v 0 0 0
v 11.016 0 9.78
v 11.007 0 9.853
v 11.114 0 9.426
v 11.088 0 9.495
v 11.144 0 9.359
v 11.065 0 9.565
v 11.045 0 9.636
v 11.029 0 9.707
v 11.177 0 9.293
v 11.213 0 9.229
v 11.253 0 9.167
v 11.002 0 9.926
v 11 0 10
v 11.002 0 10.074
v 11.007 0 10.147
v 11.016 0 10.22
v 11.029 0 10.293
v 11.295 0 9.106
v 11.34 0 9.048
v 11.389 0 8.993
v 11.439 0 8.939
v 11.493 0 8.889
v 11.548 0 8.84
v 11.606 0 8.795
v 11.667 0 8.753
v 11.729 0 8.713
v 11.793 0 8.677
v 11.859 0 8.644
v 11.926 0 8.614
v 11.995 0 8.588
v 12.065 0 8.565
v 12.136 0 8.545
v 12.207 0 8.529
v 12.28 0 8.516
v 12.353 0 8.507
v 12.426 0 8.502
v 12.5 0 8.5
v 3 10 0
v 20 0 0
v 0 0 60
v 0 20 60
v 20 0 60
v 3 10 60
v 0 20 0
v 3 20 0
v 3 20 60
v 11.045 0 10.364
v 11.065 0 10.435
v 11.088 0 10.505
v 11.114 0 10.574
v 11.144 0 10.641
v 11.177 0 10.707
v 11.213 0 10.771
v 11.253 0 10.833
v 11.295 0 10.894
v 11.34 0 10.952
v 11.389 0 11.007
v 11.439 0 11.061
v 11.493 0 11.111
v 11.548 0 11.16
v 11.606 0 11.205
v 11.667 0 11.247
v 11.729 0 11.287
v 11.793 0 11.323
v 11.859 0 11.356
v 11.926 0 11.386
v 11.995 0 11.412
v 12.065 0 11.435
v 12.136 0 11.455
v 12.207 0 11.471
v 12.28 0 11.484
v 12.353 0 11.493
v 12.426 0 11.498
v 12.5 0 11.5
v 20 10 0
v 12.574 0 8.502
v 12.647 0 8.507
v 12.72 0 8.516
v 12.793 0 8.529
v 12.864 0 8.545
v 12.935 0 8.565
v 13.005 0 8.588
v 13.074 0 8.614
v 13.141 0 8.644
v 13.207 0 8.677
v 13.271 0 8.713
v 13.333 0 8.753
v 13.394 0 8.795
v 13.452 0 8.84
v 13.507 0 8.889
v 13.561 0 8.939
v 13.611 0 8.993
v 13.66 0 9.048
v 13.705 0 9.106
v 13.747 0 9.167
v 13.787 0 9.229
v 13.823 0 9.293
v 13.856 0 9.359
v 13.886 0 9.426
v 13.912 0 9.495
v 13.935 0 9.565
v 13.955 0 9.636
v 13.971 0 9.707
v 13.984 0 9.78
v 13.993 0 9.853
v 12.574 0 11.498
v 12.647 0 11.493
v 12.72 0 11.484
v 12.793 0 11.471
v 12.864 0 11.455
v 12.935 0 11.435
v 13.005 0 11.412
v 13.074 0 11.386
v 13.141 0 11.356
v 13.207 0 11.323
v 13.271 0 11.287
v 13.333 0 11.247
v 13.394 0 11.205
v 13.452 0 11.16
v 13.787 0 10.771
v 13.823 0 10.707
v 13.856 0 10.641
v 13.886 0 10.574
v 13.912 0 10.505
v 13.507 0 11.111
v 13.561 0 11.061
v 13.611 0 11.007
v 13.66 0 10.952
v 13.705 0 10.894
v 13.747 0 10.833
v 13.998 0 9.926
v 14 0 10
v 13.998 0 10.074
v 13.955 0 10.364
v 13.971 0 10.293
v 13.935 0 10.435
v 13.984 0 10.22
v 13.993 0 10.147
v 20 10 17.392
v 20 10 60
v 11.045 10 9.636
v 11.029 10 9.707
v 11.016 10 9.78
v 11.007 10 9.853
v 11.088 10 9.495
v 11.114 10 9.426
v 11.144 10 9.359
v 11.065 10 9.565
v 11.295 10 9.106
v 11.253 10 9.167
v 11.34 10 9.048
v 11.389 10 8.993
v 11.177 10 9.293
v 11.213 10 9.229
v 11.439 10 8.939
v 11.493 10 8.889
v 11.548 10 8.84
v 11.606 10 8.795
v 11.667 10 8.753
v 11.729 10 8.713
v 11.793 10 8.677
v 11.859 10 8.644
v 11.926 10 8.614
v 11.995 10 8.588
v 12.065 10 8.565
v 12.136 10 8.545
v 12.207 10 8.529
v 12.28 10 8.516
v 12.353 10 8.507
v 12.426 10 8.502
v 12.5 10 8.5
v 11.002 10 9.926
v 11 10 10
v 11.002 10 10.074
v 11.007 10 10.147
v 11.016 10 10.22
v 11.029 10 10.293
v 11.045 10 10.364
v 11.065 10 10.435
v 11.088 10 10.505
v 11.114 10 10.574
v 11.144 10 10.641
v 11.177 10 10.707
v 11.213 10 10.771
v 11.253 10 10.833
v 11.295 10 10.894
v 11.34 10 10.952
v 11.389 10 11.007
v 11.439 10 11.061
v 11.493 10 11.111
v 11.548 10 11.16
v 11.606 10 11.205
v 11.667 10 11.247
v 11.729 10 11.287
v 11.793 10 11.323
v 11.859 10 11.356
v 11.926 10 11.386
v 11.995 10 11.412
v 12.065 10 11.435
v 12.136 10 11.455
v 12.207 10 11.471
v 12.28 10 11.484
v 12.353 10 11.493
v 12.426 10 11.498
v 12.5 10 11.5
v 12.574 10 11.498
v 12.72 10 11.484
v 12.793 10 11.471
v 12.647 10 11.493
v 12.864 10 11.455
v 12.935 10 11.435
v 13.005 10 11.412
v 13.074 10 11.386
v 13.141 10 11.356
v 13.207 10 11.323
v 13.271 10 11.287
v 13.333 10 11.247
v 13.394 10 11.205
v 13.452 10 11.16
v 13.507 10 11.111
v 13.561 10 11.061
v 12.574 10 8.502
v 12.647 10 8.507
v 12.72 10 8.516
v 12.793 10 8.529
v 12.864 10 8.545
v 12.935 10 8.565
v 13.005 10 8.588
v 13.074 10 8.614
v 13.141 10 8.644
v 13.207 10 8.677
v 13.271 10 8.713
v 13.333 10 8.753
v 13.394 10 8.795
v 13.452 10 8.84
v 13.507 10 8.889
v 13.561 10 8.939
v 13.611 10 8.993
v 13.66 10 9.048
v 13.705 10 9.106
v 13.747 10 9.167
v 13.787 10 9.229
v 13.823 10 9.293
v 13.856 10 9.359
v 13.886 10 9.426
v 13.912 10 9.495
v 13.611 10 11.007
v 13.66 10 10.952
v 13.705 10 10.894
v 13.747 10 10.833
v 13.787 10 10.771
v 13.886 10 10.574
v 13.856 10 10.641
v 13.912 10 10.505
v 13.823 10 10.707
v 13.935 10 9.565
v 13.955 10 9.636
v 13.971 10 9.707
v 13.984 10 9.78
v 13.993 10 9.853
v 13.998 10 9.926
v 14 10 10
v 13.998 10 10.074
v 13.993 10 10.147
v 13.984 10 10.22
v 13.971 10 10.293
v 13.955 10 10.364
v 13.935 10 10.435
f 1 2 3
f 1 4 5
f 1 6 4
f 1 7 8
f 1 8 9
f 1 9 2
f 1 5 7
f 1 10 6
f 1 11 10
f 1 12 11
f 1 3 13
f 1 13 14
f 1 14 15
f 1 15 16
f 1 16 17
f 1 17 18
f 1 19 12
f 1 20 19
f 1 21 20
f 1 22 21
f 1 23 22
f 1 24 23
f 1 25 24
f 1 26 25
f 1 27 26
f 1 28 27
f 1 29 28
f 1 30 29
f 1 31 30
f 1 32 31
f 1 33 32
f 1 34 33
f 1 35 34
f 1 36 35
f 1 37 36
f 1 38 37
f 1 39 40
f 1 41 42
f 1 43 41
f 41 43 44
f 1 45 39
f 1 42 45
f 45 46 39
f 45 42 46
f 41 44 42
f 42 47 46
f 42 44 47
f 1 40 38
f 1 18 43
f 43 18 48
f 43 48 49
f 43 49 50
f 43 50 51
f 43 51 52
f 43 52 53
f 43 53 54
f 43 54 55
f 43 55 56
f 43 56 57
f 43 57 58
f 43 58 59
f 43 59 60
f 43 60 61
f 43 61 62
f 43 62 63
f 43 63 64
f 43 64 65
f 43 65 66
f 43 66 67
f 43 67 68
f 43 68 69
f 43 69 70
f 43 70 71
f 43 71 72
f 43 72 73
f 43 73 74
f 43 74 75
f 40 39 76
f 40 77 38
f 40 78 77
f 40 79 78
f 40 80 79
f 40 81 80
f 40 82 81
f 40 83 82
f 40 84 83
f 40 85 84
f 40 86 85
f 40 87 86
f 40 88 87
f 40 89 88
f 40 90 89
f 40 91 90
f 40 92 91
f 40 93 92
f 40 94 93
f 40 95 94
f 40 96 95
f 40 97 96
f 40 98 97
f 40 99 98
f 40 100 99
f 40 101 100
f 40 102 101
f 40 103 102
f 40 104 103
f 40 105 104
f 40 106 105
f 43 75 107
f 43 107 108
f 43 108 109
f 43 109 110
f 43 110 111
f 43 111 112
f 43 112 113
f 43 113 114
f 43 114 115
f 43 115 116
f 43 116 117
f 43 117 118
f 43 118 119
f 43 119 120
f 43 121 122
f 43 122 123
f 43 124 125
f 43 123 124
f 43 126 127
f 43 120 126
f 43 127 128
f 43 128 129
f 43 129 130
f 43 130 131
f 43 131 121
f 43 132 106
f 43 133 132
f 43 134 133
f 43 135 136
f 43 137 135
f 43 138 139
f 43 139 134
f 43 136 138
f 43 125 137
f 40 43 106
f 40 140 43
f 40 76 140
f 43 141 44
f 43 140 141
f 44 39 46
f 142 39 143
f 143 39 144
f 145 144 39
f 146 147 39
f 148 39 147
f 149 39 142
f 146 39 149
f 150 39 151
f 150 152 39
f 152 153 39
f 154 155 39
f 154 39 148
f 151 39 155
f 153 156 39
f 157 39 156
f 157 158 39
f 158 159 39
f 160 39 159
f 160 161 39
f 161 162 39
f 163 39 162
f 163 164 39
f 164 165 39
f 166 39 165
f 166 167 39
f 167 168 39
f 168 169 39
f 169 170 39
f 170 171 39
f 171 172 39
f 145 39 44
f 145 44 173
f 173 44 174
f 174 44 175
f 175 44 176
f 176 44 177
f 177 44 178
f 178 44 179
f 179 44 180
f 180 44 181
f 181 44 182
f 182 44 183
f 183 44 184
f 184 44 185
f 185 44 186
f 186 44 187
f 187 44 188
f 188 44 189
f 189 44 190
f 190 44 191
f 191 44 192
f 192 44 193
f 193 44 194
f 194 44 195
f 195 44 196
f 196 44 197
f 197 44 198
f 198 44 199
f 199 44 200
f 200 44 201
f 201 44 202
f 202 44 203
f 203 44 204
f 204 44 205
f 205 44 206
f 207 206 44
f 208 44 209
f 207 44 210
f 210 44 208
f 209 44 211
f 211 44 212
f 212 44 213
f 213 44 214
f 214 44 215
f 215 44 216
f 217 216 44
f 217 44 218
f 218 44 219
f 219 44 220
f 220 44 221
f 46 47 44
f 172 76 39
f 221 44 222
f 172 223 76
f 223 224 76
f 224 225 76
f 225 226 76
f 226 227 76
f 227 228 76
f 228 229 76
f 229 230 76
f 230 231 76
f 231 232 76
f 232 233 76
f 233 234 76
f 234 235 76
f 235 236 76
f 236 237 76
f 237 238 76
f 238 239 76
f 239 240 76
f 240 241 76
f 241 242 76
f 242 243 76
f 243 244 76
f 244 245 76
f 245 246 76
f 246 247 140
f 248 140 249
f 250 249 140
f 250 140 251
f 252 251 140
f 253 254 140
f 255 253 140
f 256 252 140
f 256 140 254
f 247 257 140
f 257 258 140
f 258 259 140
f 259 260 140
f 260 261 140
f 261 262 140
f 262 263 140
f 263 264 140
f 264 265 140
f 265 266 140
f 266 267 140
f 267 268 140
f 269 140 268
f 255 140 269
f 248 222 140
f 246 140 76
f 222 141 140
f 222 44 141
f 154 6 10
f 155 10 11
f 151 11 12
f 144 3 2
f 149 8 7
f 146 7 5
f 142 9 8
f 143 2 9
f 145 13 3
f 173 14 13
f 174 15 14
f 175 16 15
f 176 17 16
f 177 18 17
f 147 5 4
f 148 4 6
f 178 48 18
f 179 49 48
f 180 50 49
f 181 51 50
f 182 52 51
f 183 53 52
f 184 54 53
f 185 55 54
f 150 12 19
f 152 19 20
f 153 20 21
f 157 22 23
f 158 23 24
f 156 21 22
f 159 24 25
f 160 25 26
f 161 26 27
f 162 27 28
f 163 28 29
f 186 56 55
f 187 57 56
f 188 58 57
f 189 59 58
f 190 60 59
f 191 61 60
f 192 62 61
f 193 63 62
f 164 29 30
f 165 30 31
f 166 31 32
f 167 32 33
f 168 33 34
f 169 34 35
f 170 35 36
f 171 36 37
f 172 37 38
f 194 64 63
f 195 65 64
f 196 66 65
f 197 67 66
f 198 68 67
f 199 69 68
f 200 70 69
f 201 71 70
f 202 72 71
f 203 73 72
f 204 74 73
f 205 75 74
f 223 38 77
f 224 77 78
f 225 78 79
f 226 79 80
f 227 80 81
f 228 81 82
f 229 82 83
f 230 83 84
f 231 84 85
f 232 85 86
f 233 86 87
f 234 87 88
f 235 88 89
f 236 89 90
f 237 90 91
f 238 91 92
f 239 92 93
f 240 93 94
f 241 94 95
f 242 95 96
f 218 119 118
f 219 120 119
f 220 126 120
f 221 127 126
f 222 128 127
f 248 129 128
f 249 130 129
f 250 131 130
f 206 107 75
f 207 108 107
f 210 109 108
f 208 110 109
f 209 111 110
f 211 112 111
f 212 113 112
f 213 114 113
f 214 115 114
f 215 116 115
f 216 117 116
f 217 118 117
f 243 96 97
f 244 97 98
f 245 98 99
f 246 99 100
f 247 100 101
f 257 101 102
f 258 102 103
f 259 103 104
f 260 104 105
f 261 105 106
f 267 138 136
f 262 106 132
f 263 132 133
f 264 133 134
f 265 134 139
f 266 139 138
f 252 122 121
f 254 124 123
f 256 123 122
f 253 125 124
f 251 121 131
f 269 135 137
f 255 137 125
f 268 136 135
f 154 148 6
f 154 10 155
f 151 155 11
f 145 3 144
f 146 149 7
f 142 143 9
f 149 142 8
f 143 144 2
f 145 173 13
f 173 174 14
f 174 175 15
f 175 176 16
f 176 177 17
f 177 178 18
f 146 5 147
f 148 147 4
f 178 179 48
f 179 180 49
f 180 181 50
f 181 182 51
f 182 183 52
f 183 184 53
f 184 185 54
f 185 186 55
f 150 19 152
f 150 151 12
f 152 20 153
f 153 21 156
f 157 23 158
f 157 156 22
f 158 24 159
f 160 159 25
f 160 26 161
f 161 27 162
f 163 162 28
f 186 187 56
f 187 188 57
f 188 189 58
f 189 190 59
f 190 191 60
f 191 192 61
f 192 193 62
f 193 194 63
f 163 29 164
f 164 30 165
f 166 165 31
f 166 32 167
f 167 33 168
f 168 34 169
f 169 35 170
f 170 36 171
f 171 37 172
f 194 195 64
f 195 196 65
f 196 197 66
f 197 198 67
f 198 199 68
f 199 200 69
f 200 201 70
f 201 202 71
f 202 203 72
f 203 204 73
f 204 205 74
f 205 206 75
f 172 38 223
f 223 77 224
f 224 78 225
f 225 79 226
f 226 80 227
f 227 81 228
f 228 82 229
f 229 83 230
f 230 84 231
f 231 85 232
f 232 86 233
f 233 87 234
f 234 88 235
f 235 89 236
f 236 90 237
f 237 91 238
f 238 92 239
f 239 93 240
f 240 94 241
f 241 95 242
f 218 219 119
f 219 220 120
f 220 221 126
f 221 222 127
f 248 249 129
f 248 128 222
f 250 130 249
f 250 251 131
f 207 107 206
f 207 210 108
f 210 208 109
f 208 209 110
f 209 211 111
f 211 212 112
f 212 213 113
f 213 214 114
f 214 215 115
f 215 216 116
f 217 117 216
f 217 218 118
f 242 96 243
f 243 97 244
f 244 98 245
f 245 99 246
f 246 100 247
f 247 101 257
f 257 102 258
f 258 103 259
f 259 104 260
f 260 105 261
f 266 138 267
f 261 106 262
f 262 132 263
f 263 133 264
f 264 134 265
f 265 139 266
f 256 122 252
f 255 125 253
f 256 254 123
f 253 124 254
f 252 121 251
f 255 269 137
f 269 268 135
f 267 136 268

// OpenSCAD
gap = 10;
height = 60;
$fn = 128;

difference() {
  cube([20,20,height]);
  translate([3,10,-1]) cube([100,100,100]);
  //translate([gap,gap,-1]) cube([gap,100,100]);
  translate([3 + 9.5,-gap* 1.5,gap]) rotate([-90,0,0]) cylinder(100,d = 3);
  // translate([gap*1.5,-gap,gap*2.5]) rotate([-90,0,0]) cylinder(100,d = 4.1);

  //translate([gap*1.5,gap*1.5,gap*1.5]) rotate([-90,0,90]) cylinder(100,d = 4.1);
  // translate([gap*1.5,gap*1.5,gap*2.5]) rotate([-90,0,90]) cylinder(100,d = 4.1);

  //translate([gap*3,gap*3,gap]) cube([100,100,100]);
}
